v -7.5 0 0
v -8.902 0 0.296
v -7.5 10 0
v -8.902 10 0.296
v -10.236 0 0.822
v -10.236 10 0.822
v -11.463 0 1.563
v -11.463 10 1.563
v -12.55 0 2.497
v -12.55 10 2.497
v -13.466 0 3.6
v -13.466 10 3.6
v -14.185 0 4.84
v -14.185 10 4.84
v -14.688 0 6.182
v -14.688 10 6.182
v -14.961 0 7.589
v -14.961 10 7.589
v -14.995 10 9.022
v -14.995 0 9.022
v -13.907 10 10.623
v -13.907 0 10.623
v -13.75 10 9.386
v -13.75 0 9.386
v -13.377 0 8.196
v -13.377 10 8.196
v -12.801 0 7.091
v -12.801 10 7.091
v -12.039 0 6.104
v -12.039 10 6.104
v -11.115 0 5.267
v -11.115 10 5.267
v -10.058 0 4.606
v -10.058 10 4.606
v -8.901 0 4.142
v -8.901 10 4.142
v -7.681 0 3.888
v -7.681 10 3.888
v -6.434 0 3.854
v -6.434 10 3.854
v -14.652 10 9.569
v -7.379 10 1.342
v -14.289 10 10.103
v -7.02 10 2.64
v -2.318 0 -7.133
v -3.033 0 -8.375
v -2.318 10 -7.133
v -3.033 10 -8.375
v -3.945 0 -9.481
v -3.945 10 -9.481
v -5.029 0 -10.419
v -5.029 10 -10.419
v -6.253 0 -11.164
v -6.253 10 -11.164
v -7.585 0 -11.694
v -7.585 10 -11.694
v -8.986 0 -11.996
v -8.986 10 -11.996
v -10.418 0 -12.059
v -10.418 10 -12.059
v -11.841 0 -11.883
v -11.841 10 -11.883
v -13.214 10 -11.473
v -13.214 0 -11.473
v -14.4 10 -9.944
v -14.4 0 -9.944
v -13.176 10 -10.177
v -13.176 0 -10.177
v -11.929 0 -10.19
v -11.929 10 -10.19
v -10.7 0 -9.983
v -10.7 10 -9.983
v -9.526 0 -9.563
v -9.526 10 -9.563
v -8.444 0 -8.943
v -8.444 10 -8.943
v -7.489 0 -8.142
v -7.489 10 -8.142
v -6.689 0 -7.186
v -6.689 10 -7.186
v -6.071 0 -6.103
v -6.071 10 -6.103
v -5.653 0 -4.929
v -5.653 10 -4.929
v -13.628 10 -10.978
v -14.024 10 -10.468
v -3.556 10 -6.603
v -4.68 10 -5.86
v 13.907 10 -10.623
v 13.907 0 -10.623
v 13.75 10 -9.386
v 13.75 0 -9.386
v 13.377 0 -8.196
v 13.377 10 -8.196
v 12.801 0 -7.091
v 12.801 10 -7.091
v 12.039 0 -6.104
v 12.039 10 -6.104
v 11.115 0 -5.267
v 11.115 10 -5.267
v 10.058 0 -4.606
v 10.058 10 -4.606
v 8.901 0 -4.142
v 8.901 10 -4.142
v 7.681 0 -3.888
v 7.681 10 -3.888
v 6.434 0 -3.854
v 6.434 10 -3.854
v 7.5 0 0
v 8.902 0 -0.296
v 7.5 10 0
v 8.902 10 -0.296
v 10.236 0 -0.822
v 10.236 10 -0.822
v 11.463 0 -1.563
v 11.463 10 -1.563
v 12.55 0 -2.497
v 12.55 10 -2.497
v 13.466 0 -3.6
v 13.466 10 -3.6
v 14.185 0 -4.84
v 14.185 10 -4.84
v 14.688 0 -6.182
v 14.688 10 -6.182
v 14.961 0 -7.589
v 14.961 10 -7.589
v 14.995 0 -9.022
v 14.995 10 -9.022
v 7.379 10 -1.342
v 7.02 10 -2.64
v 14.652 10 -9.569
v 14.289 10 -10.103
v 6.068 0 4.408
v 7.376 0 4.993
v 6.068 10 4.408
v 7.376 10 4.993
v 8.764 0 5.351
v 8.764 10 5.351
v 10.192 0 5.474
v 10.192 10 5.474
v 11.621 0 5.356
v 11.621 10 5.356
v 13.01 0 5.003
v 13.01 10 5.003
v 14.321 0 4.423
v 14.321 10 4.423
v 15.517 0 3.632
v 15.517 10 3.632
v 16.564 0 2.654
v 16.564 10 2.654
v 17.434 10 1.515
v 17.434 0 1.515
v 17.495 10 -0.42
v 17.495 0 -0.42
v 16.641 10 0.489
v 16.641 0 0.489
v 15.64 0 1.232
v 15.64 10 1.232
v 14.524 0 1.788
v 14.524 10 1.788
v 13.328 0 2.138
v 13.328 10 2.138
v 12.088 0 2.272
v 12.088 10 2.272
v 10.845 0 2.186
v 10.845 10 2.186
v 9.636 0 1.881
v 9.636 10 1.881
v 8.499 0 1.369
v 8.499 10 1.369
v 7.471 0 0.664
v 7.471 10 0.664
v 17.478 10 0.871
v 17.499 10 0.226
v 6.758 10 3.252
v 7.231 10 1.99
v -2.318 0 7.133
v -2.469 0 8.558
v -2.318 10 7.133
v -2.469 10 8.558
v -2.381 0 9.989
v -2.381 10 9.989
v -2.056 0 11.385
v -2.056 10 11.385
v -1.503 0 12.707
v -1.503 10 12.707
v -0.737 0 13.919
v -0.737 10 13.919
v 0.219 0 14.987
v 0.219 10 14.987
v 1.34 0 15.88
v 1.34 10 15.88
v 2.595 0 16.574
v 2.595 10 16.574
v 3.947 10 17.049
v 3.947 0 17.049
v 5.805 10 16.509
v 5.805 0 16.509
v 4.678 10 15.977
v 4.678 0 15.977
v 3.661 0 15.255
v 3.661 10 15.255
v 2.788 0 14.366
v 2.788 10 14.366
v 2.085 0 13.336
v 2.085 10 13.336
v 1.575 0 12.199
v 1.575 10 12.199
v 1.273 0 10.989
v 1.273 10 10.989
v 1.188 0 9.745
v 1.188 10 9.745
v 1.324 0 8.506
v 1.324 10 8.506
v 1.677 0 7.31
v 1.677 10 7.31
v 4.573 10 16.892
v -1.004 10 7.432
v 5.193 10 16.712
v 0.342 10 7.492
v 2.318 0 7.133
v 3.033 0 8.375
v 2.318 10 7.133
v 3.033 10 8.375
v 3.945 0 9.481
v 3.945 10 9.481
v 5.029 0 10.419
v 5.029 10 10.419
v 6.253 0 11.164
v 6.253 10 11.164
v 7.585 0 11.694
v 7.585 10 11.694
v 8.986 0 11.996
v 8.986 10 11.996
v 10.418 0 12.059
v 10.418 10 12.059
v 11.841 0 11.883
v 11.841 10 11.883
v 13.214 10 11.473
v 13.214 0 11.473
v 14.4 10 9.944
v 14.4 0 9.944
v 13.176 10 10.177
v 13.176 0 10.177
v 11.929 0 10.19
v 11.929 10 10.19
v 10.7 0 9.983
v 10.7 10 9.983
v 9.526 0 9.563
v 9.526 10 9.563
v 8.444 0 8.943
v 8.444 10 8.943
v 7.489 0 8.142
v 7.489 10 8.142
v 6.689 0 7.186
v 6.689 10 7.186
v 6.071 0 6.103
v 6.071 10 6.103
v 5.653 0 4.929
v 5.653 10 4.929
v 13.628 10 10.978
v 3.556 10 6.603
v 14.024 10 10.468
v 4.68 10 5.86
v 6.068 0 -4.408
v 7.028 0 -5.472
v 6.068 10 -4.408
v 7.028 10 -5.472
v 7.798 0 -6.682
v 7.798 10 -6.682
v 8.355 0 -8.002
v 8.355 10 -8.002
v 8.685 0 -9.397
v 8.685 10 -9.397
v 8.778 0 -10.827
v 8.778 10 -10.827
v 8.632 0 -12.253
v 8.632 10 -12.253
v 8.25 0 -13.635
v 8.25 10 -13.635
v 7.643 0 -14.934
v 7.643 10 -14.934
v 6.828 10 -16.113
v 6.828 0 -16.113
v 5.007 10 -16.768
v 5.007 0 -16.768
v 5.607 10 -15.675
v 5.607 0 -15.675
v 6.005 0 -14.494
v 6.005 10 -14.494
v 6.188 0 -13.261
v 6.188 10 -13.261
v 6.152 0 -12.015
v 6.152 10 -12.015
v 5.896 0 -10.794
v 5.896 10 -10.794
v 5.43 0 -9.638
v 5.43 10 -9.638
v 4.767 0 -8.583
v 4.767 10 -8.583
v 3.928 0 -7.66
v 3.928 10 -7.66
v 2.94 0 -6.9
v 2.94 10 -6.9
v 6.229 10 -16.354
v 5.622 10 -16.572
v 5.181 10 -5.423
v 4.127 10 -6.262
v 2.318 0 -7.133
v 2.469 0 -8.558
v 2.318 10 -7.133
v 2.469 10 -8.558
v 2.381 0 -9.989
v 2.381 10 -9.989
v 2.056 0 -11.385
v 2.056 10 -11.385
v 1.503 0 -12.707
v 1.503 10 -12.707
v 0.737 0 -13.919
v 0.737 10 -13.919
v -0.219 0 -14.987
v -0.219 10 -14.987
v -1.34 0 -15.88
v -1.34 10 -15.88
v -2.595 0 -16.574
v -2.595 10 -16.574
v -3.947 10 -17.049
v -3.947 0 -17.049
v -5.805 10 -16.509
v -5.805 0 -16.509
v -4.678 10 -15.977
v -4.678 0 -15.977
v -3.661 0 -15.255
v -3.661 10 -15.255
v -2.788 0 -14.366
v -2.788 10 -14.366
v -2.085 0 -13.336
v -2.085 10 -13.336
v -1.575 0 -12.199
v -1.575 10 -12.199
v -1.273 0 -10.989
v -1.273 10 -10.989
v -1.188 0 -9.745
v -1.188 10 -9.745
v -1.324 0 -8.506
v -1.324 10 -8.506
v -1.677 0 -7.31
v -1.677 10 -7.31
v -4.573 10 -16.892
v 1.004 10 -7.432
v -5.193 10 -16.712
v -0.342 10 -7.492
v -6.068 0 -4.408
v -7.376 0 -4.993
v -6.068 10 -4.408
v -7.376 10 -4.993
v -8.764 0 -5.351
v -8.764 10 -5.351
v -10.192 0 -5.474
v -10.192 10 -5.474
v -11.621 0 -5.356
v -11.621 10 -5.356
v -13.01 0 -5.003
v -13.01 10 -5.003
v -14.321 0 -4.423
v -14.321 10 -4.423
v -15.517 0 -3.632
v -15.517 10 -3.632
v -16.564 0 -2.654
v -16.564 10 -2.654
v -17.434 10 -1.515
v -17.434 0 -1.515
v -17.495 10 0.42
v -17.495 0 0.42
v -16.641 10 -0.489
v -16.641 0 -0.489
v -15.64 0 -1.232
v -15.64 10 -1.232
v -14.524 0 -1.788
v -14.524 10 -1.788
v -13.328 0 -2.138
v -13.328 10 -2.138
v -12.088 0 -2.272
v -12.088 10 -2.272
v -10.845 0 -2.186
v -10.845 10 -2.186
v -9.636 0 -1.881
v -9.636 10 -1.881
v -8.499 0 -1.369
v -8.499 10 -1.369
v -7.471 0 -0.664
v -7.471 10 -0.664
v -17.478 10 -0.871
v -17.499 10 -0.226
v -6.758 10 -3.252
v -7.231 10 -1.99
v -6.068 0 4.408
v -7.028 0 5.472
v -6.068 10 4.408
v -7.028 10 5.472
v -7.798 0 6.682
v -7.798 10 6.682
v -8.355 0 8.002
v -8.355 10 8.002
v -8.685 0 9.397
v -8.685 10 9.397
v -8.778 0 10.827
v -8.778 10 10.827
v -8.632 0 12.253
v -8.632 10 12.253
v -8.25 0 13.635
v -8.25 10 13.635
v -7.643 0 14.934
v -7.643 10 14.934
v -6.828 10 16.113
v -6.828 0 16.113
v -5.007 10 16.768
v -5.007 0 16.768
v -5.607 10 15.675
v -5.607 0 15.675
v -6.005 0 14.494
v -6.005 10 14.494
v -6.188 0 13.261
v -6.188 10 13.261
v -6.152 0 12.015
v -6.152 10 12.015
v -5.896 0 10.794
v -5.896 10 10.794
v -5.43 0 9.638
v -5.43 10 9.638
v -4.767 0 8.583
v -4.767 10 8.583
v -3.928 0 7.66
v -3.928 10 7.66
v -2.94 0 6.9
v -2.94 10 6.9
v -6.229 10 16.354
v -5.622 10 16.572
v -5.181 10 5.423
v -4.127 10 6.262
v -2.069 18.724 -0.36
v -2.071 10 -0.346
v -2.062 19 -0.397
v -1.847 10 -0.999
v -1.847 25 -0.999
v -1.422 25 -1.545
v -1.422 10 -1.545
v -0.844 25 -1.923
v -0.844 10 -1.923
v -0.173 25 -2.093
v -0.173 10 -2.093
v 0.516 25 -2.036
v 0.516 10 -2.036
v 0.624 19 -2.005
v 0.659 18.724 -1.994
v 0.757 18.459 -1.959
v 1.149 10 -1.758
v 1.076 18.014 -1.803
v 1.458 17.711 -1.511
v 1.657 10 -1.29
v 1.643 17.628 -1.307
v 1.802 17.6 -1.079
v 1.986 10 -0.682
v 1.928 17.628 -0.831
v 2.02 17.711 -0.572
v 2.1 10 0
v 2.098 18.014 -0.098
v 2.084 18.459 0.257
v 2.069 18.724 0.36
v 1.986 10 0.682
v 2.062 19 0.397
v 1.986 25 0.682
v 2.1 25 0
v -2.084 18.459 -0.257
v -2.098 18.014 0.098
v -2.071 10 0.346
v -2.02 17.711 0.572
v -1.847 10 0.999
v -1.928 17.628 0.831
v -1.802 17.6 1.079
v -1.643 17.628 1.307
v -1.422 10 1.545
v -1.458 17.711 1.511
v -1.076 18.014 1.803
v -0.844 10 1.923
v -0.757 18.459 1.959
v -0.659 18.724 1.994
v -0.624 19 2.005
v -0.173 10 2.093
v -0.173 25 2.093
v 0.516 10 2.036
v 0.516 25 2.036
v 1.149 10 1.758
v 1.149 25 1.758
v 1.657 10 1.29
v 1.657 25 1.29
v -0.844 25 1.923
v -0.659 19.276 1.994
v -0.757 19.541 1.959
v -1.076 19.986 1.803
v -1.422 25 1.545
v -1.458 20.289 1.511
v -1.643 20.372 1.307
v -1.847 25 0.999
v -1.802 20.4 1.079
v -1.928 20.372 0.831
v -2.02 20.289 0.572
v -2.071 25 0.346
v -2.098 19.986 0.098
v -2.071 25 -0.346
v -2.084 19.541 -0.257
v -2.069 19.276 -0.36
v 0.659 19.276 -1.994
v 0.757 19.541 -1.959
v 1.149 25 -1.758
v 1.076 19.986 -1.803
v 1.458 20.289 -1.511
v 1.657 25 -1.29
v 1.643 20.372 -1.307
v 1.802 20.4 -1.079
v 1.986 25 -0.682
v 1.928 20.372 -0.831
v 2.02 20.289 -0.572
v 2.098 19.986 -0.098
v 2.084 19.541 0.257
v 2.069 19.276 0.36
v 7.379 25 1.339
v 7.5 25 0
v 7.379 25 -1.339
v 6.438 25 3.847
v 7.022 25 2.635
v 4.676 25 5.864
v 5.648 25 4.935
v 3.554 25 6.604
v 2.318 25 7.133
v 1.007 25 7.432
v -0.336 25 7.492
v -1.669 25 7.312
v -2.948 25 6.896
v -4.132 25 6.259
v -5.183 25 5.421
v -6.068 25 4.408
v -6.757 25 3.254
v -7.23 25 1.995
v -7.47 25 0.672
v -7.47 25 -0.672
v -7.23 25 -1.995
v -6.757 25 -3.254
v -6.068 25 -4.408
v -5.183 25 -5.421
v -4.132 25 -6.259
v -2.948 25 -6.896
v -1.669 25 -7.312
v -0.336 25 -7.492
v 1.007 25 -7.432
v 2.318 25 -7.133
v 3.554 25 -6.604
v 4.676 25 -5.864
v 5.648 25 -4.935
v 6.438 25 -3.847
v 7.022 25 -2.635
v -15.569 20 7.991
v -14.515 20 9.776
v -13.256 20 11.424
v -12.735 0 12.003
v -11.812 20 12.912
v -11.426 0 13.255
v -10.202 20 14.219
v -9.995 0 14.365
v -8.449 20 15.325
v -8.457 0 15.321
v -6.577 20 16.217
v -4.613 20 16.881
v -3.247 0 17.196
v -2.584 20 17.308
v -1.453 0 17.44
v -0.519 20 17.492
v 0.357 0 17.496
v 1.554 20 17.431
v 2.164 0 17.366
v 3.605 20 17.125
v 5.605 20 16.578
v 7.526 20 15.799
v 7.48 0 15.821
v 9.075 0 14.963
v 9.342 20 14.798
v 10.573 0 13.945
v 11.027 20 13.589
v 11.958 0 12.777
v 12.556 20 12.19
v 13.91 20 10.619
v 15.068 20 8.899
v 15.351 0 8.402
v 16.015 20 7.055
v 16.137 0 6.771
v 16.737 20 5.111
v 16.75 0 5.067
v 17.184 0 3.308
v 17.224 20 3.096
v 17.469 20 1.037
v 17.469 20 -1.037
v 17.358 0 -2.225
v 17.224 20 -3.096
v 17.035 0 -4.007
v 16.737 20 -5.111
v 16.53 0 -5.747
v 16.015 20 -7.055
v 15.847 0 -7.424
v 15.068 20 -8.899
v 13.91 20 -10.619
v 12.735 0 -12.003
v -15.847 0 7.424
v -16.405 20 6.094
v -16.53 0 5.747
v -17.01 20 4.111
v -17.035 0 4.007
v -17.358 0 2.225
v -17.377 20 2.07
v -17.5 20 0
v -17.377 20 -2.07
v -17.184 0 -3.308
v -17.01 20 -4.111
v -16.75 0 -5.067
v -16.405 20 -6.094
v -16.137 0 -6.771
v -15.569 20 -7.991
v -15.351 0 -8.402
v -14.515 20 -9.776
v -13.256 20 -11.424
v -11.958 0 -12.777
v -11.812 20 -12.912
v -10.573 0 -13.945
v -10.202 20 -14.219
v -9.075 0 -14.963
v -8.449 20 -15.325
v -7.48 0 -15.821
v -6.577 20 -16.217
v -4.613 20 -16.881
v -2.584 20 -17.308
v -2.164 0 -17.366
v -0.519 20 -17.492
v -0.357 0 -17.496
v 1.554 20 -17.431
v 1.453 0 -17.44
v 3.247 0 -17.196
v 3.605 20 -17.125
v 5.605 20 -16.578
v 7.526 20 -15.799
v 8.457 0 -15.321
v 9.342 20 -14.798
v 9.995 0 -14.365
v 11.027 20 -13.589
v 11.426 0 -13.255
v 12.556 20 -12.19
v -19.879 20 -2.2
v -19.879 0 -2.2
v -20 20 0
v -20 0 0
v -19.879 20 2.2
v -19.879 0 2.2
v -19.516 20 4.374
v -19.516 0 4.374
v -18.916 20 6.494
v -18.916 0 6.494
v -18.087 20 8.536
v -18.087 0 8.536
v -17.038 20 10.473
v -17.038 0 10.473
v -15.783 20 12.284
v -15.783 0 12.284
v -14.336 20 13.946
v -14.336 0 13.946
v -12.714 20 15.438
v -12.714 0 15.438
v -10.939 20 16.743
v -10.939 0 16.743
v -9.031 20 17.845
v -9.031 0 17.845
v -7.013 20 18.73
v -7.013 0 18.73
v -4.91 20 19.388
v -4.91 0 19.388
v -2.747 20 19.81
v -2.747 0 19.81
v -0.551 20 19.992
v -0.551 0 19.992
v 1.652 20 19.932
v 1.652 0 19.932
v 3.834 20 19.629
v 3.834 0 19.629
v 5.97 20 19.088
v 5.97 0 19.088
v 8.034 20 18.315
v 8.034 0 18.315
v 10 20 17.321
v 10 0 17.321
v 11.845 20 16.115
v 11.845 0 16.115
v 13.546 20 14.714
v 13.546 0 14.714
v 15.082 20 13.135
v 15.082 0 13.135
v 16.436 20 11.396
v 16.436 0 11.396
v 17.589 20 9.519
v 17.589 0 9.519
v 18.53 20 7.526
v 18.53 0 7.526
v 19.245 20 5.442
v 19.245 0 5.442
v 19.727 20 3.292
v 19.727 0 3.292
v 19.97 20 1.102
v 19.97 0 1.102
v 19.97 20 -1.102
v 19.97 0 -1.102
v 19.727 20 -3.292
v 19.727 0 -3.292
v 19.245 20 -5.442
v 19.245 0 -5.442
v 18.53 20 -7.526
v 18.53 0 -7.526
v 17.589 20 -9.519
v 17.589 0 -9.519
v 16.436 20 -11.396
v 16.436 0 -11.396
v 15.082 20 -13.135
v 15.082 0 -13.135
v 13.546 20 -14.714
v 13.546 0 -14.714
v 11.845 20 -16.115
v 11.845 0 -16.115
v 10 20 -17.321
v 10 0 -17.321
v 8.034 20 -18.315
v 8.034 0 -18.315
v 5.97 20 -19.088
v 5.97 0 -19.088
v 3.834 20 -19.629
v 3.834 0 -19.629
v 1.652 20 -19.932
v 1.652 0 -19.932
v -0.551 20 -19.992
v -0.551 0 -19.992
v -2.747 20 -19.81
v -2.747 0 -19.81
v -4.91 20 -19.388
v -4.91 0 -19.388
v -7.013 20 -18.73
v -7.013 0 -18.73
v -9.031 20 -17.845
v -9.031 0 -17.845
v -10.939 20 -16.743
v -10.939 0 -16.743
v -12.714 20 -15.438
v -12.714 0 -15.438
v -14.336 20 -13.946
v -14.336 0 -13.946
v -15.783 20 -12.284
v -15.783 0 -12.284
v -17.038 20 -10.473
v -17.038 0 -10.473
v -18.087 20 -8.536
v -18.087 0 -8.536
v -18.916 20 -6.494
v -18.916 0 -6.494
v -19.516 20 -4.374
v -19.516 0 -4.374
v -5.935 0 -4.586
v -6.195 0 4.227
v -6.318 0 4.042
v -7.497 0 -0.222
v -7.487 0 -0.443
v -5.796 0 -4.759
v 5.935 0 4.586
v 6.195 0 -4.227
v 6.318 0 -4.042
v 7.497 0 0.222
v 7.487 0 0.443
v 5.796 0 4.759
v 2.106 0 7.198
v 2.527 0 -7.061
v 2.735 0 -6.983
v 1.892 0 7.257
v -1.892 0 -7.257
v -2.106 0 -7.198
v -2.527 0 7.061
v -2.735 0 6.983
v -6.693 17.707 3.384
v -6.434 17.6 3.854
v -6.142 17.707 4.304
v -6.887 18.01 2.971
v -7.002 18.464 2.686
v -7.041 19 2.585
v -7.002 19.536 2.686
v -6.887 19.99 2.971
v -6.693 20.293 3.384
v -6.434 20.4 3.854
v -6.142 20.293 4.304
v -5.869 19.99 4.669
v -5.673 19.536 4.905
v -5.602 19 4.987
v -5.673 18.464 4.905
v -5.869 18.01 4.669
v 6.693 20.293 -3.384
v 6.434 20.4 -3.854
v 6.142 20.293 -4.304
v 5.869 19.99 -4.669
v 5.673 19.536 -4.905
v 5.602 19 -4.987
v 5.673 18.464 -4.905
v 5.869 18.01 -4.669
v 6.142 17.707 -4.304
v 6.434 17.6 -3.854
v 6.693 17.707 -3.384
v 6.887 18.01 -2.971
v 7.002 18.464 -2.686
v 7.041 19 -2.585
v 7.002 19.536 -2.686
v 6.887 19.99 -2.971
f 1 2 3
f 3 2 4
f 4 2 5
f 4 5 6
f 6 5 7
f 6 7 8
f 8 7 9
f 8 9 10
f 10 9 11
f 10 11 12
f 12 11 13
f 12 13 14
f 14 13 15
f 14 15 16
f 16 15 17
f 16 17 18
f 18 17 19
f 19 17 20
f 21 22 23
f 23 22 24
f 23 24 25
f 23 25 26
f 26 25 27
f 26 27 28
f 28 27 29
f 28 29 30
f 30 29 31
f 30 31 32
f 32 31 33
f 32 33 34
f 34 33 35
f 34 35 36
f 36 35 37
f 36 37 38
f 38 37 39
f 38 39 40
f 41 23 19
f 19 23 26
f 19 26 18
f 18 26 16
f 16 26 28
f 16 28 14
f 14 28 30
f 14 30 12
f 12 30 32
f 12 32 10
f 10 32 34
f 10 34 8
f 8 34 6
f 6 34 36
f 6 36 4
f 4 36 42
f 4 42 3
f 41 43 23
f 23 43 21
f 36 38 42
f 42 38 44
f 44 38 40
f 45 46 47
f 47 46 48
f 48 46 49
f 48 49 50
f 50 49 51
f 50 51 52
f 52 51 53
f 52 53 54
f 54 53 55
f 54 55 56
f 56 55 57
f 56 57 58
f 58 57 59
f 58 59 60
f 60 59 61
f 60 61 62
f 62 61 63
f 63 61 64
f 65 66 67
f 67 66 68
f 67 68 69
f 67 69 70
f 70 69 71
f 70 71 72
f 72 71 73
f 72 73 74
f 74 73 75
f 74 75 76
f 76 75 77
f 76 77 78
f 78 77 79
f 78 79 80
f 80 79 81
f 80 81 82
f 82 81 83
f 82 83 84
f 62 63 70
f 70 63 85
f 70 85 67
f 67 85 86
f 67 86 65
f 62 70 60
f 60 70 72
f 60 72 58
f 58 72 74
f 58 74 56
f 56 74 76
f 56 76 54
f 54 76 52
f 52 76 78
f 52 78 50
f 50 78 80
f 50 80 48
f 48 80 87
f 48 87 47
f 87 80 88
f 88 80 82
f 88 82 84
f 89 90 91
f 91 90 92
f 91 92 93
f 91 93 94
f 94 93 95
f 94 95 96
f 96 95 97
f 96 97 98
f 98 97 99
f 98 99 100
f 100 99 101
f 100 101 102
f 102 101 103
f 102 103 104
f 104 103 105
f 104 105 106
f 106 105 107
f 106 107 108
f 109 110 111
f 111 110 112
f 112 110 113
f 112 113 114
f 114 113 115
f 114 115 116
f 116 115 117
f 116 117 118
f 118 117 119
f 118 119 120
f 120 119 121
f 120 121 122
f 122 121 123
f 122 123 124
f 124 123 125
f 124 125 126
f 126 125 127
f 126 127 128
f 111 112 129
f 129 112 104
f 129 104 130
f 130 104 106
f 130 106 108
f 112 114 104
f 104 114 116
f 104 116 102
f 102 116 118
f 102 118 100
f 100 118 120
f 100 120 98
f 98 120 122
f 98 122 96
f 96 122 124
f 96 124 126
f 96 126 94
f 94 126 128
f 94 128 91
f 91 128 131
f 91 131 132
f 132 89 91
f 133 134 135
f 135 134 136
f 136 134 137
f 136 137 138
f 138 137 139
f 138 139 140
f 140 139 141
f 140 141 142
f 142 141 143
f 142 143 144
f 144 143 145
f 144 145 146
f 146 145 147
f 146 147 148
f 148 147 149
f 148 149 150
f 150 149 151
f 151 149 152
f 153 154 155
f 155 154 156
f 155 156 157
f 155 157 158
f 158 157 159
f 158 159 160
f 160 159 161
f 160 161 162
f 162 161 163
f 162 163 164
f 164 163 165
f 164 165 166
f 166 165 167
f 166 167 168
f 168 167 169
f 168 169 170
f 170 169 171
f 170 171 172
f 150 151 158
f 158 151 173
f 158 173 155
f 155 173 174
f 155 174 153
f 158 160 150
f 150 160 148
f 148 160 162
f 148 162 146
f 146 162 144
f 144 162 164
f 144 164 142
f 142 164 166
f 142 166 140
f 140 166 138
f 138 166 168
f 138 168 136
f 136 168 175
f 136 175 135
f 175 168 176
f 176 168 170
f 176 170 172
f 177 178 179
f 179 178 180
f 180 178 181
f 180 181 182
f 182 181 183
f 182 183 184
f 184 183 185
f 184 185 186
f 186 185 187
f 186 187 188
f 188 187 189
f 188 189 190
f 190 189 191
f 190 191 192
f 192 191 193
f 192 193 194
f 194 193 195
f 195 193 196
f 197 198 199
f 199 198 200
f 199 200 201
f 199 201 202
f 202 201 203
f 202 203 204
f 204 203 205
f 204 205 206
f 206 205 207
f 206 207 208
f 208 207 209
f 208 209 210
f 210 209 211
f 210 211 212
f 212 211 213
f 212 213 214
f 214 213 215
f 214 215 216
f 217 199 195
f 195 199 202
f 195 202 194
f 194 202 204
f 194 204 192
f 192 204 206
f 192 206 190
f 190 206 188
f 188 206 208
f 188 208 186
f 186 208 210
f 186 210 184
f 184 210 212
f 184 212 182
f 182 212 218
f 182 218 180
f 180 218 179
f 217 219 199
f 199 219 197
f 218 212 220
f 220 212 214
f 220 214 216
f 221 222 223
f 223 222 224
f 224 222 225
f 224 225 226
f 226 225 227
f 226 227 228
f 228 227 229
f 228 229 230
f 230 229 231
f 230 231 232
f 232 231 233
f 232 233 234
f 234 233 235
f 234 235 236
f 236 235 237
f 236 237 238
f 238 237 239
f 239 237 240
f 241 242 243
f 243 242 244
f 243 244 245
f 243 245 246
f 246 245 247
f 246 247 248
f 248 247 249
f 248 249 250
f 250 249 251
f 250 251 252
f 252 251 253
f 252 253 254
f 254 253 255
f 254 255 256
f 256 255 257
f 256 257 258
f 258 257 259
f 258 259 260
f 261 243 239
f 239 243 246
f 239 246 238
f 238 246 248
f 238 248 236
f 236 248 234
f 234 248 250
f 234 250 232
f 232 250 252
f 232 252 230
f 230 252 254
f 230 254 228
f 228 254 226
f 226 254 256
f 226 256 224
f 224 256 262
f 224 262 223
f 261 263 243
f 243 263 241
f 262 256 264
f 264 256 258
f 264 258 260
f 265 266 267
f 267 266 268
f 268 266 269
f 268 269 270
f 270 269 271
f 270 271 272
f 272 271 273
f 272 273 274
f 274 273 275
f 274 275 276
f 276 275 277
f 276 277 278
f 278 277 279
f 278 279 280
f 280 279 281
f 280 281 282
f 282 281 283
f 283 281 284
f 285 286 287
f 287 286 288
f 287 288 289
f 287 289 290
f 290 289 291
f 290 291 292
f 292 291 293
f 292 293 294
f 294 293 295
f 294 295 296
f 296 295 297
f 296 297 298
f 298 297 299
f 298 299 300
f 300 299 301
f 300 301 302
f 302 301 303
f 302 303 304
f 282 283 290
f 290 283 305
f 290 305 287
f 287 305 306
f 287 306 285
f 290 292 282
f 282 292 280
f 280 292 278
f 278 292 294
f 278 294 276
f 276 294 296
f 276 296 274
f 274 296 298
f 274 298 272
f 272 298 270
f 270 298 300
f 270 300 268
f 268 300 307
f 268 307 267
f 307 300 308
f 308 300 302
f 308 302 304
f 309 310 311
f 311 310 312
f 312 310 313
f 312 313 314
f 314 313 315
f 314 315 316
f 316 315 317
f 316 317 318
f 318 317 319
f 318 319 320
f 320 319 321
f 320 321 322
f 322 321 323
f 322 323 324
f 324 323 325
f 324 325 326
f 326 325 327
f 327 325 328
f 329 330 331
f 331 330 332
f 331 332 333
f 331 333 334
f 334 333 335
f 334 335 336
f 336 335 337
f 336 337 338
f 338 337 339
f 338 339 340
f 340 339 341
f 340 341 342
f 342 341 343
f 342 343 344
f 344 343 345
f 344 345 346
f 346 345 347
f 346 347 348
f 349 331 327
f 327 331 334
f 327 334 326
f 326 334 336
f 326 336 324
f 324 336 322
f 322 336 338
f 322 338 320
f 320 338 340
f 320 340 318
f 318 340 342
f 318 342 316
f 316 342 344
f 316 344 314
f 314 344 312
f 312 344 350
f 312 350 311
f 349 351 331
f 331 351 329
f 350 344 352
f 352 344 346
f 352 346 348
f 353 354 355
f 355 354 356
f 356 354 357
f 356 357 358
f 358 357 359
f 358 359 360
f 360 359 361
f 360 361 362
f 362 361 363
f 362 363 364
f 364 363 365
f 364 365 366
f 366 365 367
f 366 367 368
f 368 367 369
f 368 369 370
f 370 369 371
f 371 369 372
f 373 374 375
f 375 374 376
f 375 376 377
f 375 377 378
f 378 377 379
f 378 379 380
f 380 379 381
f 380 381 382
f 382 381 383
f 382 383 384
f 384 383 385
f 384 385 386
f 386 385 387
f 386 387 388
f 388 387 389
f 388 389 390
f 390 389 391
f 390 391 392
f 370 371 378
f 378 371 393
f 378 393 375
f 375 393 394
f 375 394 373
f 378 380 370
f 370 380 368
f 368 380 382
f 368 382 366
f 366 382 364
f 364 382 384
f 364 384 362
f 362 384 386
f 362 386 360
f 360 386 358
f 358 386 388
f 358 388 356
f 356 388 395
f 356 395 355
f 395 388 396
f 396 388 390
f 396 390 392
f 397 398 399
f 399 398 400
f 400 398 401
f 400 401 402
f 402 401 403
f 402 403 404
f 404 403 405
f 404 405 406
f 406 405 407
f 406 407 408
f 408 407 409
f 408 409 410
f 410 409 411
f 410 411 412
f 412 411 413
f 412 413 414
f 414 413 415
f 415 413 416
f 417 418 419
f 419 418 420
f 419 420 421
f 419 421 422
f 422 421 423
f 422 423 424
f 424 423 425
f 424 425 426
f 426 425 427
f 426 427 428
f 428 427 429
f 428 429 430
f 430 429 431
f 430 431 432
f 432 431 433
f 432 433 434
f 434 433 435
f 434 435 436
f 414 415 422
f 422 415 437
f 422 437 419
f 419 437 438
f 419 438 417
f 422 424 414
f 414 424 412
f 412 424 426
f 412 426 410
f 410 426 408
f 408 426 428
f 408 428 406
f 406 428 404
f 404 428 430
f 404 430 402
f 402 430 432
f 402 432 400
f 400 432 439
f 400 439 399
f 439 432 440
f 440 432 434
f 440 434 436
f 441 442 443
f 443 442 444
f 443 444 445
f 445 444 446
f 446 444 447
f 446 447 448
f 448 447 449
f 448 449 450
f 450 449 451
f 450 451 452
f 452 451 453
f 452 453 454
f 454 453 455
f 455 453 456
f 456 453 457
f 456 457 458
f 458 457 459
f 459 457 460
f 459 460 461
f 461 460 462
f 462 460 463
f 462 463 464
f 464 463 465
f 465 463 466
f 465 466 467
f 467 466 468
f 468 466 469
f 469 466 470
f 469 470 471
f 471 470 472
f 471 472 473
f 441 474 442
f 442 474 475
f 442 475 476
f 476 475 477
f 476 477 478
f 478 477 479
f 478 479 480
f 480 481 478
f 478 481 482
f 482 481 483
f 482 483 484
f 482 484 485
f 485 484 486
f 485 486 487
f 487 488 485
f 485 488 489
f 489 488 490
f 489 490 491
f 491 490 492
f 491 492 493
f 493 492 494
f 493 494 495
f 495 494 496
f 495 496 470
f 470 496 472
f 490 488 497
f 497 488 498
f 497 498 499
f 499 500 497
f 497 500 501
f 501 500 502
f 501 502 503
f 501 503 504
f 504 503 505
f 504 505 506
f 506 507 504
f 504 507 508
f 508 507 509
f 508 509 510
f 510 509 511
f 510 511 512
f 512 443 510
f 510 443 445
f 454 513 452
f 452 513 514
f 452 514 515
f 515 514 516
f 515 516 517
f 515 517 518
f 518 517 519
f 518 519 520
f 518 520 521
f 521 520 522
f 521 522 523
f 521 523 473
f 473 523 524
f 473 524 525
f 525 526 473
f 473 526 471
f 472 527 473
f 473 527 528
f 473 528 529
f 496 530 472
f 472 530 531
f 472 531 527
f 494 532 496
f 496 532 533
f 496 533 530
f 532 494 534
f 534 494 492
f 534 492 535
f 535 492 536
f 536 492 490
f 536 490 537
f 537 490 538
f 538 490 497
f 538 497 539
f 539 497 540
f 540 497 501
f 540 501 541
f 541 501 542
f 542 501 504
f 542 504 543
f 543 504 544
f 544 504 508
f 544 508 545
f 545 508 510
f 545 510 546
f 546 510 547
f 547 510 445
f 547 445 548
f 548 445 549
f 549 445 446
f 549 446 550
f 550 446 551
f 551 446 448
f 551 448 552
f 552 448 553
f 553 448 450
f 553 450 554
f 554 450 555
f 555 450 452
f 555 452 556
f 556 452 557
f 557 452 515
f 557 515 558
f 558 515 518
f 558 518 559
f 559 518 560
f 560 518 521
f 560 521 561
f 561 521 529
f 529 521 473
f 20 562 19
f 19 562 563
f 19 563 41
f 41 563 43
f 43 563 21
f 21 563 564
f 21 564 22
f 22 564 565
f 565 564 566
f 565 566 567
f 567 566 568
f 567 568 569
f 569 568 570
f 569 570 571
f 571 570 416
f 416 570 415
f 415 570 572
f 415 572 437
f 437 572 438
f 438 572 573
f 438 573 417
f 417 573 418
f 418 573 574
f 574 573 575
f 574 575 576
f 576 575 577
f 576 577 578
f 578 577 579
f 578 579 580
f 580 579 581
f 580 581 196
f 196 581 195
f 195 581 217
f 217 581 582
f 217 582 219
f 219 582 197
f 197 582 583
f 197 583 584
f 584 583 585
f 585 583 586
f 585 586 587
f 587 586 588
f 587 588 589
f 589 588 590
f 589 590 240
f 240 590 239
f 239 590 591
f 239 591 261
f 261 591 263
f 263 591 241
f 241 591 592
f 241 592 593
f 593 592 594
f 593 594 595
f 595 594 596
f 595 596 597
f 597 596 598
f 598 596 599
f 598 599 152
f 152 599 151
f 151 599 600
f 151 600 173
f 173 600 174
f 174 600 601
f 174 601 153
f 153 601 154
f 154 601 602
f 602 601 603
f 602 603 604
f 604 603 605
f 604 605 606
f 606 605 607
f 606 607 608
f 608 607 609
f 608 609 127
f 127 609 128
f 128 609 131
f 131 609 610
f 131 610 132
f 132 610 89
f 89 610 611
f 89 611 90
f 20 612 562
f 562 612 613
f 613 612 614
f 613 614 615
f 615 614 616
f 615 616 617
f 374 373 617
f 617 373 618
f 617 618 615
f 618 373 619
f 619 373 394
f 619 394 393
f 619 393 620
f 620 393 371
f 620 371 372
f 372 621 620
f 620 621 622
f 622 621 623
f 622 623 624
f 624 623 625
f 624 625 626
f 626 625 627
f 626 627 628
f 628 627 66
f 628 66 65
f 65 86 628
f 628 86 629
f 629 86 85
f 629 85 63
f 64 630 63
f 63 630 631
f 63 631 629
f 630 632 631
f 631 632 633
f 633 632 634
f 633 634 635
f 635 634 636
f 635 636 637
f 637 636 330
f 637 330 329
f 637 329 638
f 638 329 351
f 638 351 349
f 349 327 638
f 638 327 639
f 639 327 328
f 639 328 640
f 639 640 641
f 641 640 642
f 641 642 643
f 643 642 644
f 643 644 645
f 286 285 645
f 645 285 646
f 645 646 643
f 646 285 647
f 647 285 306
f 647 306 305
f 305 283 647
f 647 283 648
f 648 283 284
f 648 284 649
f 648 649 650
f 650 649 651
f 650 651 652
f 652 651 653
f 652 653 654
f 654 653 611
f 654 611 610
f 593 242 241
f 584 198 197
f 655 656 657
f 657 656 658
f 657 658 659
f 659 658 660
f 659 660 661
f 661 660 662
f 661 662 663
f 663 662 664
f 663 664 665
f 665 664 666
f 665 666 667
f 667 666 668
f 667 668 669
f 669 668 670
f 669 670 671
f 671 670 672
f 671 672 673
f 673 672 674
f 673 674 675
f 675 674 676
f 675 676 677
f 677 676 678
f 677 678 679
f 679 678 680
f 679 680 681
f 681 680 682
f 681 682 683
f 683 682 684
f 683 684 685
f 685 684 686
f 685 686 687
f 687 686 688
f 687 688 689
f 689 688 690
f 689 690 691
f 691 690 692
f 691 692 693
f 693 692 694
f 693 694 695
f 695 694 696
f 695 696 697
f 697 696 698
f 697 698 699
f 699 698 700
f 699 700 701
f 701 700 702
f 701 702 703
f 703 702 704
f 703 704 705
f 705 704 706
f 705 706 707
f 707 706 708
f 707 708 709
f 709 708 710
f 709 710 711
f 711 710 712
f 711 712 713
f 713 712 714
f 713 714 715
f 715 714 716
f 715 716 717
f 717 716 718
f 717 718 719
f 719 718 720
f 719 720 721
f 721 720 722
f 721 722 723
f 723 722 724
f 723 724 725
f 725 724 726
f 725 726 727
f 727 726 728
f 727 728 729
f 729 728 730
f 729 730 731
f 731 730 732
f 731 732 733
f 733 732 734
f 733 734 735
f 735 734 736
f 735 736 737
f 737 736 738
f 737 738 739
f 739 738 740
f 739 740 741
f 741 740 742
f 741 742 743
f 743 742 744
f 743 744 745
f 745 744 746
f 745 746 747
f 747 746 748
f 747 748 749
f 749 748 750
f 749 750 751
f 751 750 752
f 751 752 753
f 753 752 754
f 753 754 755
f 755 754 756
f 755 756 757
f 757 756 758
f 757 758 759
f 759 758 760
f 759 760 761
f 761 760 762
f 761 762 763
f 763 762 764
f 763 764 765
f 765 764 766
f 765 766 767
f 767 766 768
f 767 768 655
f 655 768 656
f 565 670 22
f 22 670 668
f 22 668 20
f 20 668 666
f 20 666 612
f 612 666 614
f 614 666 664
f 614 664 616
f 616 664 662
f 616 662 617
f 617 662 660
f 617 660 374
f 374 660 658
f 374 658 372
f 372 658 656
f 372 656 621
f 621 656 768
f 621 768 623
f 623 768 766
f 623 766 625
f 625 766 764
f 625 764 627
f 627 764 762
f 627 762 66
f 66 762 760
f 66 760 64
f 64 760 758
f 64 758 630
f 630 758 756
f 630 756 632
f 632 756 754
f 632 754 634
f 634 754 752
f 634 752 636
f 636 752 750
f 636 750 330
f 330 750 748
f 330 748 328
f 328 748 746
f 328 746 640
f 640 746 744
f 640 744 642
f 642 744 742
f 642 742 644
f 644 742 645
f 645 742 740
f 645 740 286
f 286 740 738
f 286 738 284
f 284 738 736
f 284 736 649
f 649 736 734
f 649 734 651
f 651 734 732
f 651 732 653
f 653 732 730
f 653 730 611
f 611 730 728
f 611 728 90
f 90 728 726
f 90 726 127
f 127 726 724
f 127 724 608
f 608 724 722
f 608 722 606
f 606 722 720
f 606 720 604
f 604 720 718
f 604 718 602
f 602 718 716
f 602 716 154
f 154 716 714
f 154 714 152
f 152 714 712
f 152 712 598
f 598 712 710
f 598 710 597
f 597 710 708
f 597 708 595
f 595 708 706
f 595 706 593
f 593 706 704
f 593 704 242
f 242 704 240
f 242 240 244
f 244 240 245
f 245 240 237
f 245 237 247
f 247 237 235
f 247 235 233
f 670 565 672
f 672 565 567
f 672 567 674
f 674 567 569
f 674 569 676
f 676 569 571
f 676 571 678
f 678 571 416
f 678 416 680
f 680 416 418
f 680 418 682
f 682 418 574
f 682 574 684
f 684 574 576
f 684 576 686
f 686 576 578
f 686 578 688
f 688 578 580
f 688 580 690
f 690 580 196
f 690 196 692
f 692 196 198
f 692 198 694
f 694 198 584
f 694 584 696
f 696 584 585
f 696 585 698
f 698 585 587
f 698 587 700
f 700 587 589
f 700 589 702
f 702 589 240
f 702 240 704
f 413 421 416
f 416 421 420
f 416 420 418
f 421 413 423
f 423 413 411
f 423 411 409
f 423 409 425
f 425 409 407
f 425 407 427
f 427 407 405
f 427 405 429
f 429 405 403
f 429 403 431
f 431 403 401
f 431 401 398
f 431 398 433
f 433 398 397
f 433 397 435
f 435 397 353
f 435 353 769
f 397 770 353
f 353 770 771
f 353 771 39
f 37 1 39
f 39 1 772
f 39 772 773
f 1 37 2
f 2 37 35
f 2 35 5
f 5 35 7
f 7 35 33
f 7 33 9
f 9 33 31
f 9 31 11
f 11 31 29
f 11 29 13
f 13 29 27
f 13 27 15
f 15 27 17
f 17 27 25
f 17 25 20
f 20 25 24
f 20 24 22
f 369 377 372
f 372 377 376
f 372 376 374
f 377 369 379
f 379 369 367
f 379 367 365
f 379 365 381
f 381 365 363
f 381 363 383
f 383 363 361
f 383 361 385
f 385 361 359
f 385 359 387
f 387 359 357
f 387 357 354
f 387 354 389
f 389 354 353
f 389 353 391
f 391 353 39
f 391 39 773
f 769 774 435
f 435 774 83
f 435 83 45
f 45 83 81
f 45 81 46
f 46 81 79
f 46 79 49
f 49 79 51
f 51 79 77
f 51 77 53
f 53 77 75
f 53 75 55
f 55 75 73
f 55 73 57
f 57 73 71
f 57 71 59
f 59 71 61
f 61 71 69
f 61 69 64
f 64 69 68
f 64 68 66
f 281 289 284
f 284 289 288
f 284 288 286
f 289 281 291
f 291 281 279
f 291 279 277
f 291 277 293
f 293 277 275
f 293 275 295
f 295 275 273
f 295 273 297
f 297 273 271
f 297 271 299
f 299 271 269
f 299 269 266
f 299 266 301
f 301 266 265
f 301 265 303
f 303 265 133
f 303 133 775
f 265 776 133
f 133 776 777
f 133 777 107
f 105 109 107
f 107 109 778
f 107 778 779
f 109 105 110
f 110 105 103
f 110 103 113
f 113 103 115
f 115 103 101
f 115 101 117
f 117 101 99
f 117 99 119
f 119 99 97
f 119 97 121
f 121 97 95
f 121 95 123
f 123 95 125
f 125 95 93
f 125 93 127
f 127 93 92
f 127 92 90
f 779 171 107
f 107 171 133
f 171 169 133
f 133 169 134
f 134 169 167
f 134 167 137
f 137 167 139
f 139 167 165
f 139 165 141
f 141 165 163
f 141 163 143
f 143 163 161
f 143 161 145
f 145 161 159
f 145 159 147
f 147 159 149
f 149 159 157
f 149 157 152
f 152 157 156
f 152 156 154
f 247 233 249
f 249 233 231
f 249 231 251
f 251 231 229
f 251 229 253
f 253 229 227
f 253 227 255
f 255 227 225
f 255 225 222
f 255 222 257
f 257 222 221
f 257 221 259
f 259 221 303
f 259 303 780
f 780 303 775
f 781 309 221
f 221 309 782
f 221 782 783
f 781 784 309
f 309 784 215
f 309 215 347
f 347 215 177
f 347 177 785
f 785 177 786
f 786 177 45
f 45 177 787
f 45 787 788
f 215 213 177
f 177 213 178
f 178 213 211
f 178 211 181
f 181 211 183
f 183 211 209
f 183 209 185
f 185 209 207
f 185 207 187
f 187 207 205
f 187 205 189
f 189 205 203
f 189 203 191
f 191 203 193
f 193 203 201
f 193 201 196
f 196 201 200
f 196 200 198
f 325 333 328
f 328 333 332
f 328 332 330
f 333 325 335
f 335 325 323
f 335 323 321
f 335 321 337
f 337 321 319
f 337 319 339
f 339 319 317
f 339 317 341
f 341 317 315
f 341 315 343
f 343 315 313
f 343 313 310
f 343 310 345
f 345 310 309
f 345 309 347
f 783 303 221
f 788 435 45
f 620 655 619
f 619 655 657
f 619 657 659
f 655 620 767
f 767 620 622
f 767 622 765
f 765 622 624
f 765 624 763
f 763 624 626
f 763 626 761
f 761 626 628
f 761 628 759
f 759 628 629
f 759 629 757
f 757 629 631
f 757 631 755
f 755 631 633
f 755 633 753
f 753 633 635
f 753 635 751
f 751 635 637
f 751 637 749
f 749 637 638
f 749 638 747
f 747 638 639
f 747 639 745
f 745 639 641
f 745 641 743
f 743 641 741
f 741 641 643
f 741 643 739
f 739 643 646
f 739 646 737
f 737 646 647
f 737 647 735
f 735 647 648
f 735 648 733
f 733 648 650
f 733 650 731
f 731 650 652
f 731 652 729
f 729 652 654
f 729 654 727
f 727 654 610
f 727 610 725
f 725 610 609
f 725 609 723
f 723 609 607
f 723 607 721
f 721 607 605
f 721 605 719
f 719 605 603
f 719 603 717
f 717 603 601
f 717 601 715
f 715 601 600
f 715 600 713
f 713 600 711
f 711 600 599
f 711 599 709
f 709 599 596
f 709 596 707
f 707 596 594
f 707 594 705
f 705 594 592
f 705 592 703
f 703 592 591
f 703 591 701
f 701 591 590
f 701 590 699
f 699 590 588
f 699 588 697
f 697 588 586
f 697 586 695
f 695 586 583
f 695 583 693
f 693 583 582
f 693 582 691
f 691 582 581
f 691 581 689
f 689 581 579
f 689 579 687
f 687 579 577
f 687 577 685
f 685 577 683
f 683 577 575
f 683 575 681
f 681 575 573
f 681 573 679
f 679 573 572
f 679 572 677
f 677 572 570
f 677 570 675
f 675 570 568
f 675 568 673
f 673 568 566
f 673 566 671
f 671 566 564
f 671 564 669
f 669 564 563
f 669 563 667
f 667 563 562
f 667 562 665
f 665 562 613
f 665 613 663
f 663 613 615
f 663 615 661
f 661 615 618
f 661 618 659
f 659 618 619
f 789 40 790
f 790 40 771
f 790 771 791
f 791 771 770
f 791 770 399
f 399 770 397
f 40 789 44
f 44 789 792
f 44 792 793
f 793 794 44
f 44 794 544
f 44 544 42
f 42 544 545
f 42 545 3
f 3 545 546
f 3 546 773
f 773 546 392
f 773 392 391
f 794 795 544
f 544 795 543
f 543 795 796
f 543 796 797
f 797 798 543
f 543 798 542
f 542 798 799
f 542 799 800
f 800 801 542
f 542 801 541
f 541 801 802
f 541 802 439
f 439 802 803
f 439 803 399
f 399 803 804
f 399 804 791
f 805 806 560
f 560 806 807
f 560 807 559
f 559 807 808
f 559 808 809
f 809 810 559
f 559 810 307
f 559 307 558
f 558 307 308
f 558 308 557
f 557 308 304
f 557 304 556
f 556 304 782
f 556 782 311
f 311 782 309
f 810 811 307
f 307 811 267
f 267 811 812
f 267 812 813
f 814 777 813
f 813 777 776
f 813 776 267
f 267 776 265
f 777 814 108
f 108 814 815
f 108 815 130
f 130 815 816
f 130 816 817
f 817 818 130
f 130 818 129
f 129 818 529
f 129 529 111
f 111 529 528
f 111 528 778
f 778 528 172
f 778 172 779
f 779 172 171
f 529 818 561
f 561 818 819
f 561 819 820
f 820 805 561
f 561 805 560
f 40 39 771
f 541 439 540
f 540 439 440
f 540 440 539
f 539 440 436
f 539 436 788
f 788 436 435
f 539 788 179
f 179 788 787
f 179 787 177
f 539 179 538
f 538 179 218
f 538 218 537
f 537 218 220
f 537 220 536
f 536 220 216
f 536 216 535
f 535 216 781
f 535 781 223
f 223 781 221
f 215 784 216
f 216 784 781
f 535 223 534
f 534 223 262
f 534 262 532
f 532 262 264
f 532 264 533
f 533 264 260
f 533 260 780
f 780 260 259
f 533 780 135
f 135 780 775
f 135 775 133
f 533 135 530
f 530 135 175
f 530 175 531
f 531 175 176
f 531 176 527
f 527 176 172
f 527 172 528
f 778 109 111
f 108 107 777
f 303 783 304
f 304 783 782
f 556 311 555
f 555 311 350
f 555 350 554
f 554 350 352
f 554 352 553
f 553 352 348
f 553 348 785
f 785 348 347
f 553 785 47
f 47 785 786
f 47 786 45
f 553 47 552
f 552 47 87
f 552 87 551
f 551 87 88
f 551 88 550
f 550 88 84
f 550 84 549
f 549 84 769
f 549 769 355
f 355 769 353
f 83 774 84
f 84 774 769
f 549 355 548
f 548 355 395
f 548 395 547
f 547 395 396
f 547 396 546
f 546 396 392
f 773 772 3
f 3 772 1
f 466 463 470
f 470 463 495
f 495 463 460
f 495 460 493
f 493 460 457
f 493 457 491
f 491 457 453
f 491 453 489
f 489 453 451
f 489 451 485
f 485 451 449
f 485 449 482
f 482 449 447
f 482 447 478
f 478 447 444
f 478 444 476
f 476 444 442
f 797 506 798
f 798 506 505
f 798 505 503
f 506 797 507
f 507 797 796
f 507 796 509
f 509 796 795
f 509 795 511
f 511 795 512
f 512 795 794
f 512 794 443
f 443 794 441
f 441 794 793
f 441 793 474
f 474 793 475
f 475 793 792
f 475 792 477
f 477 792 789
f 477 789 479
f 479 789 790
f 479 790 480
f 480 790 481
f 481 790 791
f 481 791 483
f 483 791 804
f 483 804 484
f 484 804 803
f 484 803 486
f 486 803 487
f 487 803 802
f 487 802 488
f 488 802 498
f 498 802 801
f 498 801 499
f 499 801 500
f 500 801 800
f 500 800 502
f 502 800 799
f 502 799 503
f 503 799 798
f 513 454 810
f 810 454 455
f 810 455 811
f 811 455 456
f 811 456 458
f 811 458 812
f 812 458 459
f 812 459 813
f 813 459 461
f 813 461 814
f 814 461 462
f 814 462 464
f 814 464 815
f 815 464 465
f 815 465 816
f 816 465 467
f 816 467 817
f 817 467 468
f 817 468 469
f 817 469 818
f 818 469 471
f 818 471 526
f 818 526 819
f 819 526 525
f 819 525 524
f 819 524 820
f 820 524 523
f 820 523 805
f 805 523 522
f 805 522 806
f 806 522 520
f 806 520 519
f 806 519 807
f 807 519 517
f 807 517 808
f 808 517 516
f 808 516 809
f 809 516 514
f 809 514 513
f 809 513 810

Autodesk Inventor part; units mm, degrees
ref_plane "YZ Plane" through (0, 0, 0) normal (1, 0, 0) x (0, 1, 0)
ref_plane "XZ Plane" through (0, 0, 0) normal (0, 1, 0) x (-1, 0, 0)
ref_plane "XY Plane" through (0, 0, 0) normal (0, 0, 1) x (1, 0, 0)
sketch "Эскиз1" plane through (0, 0, 0) normal (0, 1, 0) x (-1, 0, 0)
  circle A0 centre (0, 0) radius 20
  circle A1 centre (0, 0) radius 17.5
  dimension "d0" = 40
  dimension "d1" = 35
extrude "Выдавливание1" add sketch "Эскиз1" along normal blind 20
sketch "Эскиз2" plane through (0, 0, 0) normal (0, -1, 0) x (1, 0, 0)
  circle A0 centre (0, 0) radius 7.5
  dimension "d5" = 15
extrude "Выдавливание2" add sketch "Эскиз2" against normal blind 25
sketch "Эскиз3" plane through (0, 0, 0) normal (0, -1, 0) x (1, 0, 0)
  arc A0 (6.4343, -3.8535) -> (7.5, 0) centre (0, 0) ccw
  circle A1 centre (0, 0) radius 17.5 projected
  arc A2 (13.9071, -10.6227) -> (14.995, -9.0222) centre (0, 0) ccw
  circle A3 centre (0, 0) radius 7.5 projected
  arc A4 (14.995, -9.0222) -> (7.5, 0) centre (6.4343, -8.5096) ccw
  arc A5 (13.9071, -10.6227) -> (6.4343, -3.8535) centre (6.8631, -10.8895) ccw
  arc A6 (17.4343, 1.5147) -> (6.0676, 4.4084) centre (10.2073, -3.1024) ccw
  arc A7 (7.4705, 0.6644) -> (6.0676, 4.4084) centre (0, 0) ccw
  arc A8 (17.495, -0.4196) -> (7.4705, 0.6644) centre (11.9531, -4.7757) ccw
  arc A9 (17.495, -0.4196) -> (17.4343, 1.5147) centre (0, 0) ccw
  arc A10 (13.2143, 11.4731) -> (2.3176, 7.1329) centre (10.0814, 3.4898) ccw
  arc A11 (5.6532, 4.9286) -> (2.3176, 7.1329) centre (0, 0) ccw
  arc A12 (14.4004, 9.9438) -> (5.6532, 4.9286) centre (12.4773, 3.1622) ccw
  arc A13 (14.4004, 9.9438) -> (13.2143, 11.4731) centre (0, 0) ccw
  arc A14 (3.9469, 17.0491) -> (-2.3176, 7.1329) centre (6.1048, 8.749) ccw
  arc A15 (1.6766, 7.3102) -> (-2.3176, 7.1329) centre (0, 0) ccw
  arc A16 (5.8053, 16.509) -> (1.6766, 7.3102) centre (8.2357, 9.8923) ccw
  arc A17 (5.8053, 16.509) -> (3.9469, 17.0491) centre (0, 0) ccw
  arc A18 (-6.8281, 16.1129) -> (-6.0676, 4.4084) centre (-0.2037, 10.6664) ccw
  arc A19 (-2.9404, 6.8996) -> (-6.0676, 4.4084) centre (0, 0) ccw
  arc A20 (-5.0072, 16.7684) -> (-2.9404, 6.8996) centre (0.8483, 12.8438) ccw
  arc A21 (-5.0072, 16.7684) -> (-6.8281, 16.1129) centre (0, 0) ccw
  arc A22 (-14.995, 9.0222) -> (-7.5, 0) centre (-6.4343, 8.5096) ccw
  arc A23 (-6.4343, 3.8535) -> (-7.5, 0) centre (0, 0) ccw
  arc A24 (-13.9071, 10.6227) -> (-6.4343, 3.8535) centre (-6.8631, 10.8895) ccw
  arc A25 (-13.9071, 10.6227) -> (-14.995, 9.0222) centre (0, 0) ccw
  arc A26 (-17.4343, -1.5147) -> (-6.0676, -4.4084) centre (-10.2073, 3.1024) ccw
  arc A27 (-7.4705, -0.6644) -> (-6.0676, -4.4084) centre (0, 0) ccw
  arc A28 (-17.495, 0.4196) -> (-7.4705, -0.6644) centre (-11.9531, 4.7757) ccw
  arc A29 (-17.495, 0.4196) -> (-17.4343, -1.5147) centre (0, 0) ccw
  arc A30 (-13.2143, -11.4731) -> (-2.3176, -7.1329) centre (-10.0814, -3.4898) ccw
  arc A31 (-5.6532, -4.9286) -> (-2.3176, -7.1329) centre (0, 0) ccw
  arc A32 (-14.4004, -9.9438) -> (-5.6532, -4.9286) centre (-12.4773, -3.1622) ccw
  arc A33 (-14.4004, -9.9438) -> (-13.2143, -11.4731) centre (0, 0) ccw
  arc A34 (-3.9469, -17.0491) -> (2.3176, -7.1329) centre (-6.1048, -8.749) ccw
  arc A35 (-1.6766, -7.3102) -> (2.3176, -7.1329) centre (0, 0) ccw
  arc A36 (-5.8053, -16.509) -> (-1.6766, -7.3102) centre (-8.2357, -9.8923) ccw
  arc A37 (-5.8053, -16.509) -> (-3.9469, -17.0491) centre (0, 0) ccw
  arc A38 (6.8281, -16.1129) -> (6.0676, -4.4084) centre (0.2037, -10.6664) ccw
  arc A39 (2.9404, -6.8996) -> (6.0676, -4.4084) centre (0, 0) ccw
  arc A40 (5.0072, -16.7684) -> (2.9404, -6.8996) centre (-0.8483, -12.8438) ccw
  arc A41 (5.0072, -16.7684) -> (6.8281, -16.1129) centre (0, 0) ccw
  dimension "d10" = 360
extrude "Выдавливание3" add sketch "Эскиз3" against normal blind 10 contours A0 A4 A1 A5 | A38 A1 A40 A3 | A3 A6 A1 A8 | A34 A1 A36 A3 | A3 A10 A1 A12 | A30 A1 A32 A3 | A3 A14 A1 A16 | A26 A1 A28 A3 | A3 A18 A1 A20 | A22 A1 A24 A3
sketch "Эскиз5" plane through (0, 25, 0) normal (0, 1, 0) x (1, 0, 0)
  circle A0 centre (0, 0) radius 2.1
  dimension "d14" = 4.2
extrude "Выдавливание4" cut sketch "Эскиз5" against normal blind 15
ref_plane "РабПлоскость1" through (6.4343, 0, -3.8535) normal (0.8579, 0, -0.5138) x (0, 1, 0)
sketch "Эскиз6" plane through (6.4343, 0, -3.8535) normal (0.8579, 0, -0.5138) x (0, 1, 0)
  line L0 (25, -7.5) -> (25, 7.5) projected
  line L1 (25, 0) -> (19, 0)
  circle A0 centre (19, 0) radius 1.4
  point P0 (0, 0)
  dimension "d17" = 6
  dimension "d18" = 2.8
extrude "Выдавливание5" cut sketch "Эскиз6" against normal blind 15
sketch "Эскиз7" plane through (0, 0, 0) normal (0, -1, 0) x (1, 0, 0)
  point P0 (0, 0)
properties part number "Колесо"
